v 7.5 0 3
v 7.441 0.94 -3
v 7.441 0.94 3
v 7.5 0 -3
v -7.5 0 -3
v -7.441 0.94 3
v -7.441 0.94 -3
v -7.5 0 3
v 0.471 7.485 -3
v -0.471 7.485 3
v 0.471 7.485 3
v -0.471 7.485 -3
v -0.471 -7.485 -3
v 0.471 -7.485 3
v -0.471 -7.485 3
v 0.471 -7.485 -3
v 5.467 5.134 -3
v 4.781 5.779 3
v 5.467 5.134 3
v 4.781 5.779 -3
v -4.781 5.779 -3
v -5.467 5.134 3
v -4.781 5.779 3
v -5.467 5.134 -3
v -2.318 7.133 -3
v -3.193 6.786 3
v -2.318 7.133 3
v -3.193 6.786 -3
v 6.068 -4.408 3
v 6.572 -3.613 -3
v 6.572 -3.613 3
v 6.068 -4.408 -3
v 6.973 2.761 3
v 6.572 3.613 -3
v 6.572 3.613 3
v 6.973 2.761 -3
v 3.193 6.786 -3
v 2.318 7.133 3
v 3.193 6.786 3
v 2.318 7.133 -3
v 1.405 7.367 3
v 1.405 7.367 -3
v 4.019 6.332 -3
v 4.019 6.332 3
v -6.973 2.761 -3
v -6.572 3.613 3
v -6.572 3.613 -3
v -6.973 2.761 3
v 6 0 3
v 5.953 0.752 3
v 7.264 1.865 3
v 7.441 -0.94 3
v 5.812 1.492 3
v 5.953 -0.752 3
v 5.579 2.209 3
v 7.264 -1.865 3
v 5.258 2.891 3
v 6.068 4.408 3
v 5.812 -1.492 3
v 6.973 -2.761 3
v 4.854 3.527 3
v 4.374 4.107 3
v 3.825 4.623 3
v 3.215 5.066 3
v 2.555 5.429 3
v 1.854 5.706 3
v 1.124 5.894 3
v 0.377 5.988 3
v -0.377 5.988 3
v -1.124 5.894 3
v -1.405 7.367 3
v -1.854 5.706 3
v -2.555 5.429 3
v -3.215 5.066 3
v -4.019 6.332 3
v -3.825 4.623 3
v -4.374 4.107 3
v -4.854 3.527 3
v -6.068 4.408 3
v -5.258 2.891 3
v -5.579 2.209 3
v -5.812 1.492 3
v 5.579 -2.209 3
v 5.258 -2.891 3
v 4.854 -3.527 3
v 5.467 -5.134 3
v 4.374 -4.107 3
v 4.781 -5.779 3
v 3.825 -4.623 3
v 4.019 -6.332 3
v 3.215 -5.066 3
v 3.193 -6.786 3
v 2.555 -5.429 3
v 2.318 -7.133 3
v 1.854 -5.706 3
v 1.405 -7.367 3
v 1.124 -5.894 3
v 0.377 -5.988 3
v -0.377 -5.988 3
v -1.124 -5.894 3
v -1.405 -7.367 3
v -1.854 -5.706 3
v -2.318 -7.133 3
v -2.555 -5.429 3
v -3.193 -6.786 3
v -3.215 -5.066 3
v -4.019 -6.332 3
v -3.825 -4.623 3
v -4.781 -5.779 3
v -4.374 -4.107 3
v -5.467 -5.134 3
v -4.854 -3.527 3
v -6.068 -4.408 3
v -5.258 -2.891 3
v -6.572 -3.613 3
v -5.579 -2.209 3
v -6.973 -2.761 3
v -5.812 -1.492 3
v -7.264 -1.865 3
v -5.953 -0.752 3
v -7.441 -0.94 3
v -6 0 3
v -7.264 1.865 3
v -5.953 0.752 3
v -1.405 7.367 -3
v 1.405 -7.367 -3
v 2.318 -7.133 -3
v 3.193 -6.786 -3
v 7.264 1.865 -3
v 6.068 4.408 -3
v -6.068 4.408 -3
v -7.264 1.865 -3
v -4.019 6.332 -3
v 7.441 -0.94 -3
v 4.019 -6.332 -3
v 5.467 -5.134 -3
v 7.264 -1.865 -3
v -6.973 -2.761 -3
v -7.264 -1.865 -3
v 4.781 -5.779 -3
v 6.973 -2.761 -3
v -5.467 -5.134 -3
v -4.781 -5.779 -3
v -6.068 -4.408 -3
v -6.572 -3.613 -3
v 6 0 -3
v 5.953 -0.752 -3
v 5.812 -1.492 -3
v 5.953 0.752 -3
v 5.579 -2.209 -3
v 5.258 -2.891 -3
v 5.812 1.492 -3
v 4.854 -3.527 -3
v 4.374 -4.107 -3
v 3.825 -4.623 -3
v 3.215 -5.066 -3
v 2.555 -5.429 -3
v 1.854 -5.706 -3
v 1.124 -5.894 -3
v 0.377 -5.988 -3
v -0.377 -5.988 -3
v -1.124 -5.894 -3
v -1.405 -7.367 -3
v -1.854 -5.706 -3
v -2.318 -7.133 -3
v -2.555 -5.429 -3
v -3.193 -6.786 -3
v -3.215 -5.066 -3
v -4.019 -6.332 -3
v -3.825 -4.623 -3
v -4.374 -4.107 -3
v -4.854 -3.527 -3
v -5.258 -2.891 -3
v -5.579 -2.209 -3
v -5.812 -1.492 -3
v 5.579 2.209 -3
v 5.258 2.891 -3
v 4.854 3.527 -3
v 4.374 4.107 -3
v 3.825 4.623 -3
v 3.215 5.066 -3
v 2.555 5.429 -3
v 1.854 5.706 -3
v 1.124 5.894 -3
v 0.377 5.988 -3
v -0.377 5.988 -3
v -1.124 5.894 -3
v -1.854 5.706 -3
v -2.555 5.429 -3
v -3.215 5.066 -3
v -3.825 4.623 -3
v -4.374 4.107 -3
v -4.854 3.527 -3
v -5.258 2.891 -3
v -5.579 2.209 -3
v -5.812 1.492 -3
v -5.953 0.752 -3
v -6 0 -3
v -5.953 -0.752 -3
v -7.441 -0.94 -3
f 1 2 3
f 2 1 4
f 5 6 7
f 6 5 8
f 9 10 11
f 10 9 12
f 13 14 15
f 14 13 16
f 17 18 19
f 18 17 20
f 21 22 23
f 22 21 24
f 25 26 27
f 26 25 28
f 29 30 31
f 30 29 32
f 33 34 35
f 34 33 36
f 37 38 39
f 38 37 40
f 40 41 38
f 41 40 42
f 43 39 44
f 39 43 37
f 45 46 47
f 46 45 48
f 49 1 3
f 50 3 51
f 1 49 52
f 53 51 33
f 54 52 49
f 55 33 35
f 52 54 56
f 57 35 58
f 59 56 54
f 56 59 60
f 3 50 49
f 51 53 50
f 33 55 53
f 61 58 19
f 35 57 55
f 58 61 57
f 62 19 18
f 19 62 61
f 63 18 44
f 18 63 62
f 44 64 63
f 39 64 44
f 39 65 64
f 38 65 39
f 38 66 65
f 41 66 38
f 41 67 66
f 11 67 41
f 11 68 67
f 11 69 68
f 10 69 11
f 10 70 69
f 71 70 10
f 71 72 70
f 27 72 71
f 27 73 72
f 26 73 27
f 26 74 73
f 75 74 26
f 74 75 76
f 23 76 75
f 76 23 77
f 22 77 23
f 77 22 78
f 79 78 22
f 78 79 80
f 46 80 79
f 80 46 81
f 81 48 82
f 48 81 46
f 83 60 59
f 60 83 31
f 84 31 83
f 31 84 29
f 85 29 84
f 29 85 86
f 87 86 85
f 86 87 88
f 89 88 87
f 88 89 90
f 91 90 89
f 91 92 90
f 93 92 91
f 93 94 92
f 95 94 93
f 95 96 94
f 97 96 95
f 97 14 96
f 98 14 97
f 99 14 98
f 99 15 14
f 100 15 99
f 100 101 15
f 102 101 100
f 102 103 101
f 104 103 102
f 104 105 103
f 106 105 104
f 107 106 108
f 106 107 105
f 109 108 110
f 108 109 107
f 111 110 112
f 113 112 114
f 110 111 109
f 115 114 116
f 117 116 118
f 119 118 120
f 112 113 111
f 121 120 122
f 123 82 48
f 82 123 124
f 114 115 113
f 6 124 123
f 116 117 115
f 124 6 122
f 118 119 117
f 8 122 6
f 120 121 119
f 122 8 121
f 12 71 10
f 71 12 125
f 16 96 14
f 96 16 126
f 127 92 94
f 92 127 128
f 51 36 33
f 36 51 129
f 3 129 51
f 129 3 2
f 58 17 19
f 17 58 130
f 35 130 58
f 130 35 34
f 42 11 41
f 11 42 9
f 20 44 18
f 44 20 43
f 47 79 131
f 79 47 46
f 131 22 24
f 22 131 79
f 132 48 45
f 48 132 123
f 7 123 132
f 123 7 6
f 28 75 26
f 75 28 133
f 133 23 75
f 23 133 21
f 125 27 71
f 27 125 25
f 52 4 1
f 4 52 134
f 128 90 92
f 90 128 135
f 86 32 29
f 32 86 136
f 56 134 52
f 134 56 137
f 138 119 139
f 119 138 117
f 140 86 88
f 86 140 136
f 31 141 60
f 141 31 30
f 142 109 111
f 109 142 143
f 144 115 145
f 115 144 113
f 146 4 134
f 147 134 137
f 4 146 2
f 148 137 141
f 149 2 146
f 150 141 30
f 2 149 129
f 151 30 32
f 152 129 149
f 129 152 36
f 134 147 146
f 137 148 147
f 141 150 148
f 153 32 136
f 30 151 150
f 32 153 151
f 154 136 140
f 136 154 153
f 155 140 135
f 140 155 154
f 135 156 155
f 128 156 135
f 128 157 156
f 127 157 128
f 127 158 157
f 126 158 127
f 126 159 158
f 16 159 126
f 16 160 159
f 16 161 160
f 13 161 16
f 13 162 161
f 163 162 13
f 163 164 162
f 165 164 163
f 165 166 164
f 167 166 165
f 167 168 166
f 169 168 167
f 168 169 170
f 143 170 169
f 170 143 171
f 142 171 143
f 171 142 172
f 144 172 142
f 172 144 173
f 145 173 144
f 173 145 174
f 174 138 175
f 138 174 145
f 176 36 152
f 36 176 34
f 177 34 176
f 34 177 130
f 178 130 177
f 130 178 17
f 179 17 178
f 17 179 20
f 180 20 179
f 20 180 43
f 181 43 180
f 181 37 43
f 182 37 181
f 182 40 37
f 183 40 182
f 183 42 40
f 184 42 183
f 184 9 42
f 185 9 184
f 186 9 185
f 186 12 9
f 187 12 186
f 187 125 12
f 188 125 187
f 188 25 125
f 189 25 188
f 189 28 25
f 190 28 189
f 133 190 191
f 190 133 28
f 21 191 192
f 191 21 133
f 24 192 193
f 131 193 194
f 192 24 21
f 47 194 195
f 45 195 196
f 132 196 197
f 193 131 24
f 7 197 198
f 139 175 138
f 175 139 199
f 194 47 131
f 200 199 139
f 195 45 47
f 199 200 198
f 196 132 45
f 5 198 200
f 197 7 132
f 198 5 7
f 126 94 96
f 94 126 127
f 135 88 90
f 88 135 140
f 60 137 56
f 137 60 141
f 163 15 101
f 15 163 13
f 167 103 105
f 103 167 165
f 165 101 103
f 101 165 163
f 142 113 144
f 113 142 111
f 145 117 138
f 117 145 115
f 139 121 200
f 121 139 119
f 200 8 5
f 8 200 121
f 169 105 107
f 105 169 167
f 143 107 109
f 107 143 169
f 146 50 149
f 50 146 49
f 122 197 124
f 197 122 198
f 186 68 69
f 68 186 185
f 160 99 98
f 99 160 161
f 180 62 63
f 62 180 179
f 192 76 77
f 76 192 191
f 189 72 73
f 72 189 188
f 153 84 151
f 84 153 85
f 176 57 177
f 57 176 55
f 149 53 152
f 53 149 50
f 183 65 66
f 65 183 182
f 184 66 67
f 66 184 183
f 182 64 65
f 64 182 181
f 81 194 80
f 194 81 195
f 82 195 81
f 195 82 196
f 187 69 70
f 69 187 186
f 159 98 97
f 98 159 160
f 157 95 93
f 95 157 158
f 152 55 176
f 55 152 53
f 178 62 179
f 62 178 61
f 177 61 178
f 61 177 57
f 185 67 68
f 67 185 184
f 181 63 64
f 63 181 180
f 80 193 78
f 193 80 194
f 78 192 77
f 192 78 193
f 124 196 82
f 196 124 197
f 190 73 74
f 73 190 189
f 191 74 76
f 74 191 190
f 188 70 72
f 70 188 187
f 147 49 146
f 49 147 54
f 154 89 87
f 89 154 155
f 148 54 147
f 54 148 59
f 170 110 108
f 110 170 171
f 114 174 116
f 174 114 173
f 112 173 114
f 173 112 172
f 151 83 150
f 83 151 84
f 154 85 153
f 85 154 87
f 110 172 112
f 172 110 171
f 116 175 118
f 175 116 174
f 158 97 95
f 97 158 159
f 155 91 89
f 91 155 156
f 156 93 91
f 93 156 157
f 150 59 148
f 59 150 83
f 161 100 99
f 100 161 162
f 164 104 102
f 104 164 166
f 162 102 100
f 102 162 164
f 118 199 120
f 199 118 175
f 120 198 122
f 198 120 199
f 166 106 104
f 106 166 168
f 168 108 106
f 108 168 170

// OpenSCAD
$fn = 50;


difference() {
	union() {
		translate(v = [0, 0, -3.0000000000]) {
			cylinder(h = 6, r = 7.5000000000);
		}
	}
	union() {
		translate(v = [0, 0, -100.0000000000]) {
			cylinder(h = 200, r = 6);
		}
	}
}
